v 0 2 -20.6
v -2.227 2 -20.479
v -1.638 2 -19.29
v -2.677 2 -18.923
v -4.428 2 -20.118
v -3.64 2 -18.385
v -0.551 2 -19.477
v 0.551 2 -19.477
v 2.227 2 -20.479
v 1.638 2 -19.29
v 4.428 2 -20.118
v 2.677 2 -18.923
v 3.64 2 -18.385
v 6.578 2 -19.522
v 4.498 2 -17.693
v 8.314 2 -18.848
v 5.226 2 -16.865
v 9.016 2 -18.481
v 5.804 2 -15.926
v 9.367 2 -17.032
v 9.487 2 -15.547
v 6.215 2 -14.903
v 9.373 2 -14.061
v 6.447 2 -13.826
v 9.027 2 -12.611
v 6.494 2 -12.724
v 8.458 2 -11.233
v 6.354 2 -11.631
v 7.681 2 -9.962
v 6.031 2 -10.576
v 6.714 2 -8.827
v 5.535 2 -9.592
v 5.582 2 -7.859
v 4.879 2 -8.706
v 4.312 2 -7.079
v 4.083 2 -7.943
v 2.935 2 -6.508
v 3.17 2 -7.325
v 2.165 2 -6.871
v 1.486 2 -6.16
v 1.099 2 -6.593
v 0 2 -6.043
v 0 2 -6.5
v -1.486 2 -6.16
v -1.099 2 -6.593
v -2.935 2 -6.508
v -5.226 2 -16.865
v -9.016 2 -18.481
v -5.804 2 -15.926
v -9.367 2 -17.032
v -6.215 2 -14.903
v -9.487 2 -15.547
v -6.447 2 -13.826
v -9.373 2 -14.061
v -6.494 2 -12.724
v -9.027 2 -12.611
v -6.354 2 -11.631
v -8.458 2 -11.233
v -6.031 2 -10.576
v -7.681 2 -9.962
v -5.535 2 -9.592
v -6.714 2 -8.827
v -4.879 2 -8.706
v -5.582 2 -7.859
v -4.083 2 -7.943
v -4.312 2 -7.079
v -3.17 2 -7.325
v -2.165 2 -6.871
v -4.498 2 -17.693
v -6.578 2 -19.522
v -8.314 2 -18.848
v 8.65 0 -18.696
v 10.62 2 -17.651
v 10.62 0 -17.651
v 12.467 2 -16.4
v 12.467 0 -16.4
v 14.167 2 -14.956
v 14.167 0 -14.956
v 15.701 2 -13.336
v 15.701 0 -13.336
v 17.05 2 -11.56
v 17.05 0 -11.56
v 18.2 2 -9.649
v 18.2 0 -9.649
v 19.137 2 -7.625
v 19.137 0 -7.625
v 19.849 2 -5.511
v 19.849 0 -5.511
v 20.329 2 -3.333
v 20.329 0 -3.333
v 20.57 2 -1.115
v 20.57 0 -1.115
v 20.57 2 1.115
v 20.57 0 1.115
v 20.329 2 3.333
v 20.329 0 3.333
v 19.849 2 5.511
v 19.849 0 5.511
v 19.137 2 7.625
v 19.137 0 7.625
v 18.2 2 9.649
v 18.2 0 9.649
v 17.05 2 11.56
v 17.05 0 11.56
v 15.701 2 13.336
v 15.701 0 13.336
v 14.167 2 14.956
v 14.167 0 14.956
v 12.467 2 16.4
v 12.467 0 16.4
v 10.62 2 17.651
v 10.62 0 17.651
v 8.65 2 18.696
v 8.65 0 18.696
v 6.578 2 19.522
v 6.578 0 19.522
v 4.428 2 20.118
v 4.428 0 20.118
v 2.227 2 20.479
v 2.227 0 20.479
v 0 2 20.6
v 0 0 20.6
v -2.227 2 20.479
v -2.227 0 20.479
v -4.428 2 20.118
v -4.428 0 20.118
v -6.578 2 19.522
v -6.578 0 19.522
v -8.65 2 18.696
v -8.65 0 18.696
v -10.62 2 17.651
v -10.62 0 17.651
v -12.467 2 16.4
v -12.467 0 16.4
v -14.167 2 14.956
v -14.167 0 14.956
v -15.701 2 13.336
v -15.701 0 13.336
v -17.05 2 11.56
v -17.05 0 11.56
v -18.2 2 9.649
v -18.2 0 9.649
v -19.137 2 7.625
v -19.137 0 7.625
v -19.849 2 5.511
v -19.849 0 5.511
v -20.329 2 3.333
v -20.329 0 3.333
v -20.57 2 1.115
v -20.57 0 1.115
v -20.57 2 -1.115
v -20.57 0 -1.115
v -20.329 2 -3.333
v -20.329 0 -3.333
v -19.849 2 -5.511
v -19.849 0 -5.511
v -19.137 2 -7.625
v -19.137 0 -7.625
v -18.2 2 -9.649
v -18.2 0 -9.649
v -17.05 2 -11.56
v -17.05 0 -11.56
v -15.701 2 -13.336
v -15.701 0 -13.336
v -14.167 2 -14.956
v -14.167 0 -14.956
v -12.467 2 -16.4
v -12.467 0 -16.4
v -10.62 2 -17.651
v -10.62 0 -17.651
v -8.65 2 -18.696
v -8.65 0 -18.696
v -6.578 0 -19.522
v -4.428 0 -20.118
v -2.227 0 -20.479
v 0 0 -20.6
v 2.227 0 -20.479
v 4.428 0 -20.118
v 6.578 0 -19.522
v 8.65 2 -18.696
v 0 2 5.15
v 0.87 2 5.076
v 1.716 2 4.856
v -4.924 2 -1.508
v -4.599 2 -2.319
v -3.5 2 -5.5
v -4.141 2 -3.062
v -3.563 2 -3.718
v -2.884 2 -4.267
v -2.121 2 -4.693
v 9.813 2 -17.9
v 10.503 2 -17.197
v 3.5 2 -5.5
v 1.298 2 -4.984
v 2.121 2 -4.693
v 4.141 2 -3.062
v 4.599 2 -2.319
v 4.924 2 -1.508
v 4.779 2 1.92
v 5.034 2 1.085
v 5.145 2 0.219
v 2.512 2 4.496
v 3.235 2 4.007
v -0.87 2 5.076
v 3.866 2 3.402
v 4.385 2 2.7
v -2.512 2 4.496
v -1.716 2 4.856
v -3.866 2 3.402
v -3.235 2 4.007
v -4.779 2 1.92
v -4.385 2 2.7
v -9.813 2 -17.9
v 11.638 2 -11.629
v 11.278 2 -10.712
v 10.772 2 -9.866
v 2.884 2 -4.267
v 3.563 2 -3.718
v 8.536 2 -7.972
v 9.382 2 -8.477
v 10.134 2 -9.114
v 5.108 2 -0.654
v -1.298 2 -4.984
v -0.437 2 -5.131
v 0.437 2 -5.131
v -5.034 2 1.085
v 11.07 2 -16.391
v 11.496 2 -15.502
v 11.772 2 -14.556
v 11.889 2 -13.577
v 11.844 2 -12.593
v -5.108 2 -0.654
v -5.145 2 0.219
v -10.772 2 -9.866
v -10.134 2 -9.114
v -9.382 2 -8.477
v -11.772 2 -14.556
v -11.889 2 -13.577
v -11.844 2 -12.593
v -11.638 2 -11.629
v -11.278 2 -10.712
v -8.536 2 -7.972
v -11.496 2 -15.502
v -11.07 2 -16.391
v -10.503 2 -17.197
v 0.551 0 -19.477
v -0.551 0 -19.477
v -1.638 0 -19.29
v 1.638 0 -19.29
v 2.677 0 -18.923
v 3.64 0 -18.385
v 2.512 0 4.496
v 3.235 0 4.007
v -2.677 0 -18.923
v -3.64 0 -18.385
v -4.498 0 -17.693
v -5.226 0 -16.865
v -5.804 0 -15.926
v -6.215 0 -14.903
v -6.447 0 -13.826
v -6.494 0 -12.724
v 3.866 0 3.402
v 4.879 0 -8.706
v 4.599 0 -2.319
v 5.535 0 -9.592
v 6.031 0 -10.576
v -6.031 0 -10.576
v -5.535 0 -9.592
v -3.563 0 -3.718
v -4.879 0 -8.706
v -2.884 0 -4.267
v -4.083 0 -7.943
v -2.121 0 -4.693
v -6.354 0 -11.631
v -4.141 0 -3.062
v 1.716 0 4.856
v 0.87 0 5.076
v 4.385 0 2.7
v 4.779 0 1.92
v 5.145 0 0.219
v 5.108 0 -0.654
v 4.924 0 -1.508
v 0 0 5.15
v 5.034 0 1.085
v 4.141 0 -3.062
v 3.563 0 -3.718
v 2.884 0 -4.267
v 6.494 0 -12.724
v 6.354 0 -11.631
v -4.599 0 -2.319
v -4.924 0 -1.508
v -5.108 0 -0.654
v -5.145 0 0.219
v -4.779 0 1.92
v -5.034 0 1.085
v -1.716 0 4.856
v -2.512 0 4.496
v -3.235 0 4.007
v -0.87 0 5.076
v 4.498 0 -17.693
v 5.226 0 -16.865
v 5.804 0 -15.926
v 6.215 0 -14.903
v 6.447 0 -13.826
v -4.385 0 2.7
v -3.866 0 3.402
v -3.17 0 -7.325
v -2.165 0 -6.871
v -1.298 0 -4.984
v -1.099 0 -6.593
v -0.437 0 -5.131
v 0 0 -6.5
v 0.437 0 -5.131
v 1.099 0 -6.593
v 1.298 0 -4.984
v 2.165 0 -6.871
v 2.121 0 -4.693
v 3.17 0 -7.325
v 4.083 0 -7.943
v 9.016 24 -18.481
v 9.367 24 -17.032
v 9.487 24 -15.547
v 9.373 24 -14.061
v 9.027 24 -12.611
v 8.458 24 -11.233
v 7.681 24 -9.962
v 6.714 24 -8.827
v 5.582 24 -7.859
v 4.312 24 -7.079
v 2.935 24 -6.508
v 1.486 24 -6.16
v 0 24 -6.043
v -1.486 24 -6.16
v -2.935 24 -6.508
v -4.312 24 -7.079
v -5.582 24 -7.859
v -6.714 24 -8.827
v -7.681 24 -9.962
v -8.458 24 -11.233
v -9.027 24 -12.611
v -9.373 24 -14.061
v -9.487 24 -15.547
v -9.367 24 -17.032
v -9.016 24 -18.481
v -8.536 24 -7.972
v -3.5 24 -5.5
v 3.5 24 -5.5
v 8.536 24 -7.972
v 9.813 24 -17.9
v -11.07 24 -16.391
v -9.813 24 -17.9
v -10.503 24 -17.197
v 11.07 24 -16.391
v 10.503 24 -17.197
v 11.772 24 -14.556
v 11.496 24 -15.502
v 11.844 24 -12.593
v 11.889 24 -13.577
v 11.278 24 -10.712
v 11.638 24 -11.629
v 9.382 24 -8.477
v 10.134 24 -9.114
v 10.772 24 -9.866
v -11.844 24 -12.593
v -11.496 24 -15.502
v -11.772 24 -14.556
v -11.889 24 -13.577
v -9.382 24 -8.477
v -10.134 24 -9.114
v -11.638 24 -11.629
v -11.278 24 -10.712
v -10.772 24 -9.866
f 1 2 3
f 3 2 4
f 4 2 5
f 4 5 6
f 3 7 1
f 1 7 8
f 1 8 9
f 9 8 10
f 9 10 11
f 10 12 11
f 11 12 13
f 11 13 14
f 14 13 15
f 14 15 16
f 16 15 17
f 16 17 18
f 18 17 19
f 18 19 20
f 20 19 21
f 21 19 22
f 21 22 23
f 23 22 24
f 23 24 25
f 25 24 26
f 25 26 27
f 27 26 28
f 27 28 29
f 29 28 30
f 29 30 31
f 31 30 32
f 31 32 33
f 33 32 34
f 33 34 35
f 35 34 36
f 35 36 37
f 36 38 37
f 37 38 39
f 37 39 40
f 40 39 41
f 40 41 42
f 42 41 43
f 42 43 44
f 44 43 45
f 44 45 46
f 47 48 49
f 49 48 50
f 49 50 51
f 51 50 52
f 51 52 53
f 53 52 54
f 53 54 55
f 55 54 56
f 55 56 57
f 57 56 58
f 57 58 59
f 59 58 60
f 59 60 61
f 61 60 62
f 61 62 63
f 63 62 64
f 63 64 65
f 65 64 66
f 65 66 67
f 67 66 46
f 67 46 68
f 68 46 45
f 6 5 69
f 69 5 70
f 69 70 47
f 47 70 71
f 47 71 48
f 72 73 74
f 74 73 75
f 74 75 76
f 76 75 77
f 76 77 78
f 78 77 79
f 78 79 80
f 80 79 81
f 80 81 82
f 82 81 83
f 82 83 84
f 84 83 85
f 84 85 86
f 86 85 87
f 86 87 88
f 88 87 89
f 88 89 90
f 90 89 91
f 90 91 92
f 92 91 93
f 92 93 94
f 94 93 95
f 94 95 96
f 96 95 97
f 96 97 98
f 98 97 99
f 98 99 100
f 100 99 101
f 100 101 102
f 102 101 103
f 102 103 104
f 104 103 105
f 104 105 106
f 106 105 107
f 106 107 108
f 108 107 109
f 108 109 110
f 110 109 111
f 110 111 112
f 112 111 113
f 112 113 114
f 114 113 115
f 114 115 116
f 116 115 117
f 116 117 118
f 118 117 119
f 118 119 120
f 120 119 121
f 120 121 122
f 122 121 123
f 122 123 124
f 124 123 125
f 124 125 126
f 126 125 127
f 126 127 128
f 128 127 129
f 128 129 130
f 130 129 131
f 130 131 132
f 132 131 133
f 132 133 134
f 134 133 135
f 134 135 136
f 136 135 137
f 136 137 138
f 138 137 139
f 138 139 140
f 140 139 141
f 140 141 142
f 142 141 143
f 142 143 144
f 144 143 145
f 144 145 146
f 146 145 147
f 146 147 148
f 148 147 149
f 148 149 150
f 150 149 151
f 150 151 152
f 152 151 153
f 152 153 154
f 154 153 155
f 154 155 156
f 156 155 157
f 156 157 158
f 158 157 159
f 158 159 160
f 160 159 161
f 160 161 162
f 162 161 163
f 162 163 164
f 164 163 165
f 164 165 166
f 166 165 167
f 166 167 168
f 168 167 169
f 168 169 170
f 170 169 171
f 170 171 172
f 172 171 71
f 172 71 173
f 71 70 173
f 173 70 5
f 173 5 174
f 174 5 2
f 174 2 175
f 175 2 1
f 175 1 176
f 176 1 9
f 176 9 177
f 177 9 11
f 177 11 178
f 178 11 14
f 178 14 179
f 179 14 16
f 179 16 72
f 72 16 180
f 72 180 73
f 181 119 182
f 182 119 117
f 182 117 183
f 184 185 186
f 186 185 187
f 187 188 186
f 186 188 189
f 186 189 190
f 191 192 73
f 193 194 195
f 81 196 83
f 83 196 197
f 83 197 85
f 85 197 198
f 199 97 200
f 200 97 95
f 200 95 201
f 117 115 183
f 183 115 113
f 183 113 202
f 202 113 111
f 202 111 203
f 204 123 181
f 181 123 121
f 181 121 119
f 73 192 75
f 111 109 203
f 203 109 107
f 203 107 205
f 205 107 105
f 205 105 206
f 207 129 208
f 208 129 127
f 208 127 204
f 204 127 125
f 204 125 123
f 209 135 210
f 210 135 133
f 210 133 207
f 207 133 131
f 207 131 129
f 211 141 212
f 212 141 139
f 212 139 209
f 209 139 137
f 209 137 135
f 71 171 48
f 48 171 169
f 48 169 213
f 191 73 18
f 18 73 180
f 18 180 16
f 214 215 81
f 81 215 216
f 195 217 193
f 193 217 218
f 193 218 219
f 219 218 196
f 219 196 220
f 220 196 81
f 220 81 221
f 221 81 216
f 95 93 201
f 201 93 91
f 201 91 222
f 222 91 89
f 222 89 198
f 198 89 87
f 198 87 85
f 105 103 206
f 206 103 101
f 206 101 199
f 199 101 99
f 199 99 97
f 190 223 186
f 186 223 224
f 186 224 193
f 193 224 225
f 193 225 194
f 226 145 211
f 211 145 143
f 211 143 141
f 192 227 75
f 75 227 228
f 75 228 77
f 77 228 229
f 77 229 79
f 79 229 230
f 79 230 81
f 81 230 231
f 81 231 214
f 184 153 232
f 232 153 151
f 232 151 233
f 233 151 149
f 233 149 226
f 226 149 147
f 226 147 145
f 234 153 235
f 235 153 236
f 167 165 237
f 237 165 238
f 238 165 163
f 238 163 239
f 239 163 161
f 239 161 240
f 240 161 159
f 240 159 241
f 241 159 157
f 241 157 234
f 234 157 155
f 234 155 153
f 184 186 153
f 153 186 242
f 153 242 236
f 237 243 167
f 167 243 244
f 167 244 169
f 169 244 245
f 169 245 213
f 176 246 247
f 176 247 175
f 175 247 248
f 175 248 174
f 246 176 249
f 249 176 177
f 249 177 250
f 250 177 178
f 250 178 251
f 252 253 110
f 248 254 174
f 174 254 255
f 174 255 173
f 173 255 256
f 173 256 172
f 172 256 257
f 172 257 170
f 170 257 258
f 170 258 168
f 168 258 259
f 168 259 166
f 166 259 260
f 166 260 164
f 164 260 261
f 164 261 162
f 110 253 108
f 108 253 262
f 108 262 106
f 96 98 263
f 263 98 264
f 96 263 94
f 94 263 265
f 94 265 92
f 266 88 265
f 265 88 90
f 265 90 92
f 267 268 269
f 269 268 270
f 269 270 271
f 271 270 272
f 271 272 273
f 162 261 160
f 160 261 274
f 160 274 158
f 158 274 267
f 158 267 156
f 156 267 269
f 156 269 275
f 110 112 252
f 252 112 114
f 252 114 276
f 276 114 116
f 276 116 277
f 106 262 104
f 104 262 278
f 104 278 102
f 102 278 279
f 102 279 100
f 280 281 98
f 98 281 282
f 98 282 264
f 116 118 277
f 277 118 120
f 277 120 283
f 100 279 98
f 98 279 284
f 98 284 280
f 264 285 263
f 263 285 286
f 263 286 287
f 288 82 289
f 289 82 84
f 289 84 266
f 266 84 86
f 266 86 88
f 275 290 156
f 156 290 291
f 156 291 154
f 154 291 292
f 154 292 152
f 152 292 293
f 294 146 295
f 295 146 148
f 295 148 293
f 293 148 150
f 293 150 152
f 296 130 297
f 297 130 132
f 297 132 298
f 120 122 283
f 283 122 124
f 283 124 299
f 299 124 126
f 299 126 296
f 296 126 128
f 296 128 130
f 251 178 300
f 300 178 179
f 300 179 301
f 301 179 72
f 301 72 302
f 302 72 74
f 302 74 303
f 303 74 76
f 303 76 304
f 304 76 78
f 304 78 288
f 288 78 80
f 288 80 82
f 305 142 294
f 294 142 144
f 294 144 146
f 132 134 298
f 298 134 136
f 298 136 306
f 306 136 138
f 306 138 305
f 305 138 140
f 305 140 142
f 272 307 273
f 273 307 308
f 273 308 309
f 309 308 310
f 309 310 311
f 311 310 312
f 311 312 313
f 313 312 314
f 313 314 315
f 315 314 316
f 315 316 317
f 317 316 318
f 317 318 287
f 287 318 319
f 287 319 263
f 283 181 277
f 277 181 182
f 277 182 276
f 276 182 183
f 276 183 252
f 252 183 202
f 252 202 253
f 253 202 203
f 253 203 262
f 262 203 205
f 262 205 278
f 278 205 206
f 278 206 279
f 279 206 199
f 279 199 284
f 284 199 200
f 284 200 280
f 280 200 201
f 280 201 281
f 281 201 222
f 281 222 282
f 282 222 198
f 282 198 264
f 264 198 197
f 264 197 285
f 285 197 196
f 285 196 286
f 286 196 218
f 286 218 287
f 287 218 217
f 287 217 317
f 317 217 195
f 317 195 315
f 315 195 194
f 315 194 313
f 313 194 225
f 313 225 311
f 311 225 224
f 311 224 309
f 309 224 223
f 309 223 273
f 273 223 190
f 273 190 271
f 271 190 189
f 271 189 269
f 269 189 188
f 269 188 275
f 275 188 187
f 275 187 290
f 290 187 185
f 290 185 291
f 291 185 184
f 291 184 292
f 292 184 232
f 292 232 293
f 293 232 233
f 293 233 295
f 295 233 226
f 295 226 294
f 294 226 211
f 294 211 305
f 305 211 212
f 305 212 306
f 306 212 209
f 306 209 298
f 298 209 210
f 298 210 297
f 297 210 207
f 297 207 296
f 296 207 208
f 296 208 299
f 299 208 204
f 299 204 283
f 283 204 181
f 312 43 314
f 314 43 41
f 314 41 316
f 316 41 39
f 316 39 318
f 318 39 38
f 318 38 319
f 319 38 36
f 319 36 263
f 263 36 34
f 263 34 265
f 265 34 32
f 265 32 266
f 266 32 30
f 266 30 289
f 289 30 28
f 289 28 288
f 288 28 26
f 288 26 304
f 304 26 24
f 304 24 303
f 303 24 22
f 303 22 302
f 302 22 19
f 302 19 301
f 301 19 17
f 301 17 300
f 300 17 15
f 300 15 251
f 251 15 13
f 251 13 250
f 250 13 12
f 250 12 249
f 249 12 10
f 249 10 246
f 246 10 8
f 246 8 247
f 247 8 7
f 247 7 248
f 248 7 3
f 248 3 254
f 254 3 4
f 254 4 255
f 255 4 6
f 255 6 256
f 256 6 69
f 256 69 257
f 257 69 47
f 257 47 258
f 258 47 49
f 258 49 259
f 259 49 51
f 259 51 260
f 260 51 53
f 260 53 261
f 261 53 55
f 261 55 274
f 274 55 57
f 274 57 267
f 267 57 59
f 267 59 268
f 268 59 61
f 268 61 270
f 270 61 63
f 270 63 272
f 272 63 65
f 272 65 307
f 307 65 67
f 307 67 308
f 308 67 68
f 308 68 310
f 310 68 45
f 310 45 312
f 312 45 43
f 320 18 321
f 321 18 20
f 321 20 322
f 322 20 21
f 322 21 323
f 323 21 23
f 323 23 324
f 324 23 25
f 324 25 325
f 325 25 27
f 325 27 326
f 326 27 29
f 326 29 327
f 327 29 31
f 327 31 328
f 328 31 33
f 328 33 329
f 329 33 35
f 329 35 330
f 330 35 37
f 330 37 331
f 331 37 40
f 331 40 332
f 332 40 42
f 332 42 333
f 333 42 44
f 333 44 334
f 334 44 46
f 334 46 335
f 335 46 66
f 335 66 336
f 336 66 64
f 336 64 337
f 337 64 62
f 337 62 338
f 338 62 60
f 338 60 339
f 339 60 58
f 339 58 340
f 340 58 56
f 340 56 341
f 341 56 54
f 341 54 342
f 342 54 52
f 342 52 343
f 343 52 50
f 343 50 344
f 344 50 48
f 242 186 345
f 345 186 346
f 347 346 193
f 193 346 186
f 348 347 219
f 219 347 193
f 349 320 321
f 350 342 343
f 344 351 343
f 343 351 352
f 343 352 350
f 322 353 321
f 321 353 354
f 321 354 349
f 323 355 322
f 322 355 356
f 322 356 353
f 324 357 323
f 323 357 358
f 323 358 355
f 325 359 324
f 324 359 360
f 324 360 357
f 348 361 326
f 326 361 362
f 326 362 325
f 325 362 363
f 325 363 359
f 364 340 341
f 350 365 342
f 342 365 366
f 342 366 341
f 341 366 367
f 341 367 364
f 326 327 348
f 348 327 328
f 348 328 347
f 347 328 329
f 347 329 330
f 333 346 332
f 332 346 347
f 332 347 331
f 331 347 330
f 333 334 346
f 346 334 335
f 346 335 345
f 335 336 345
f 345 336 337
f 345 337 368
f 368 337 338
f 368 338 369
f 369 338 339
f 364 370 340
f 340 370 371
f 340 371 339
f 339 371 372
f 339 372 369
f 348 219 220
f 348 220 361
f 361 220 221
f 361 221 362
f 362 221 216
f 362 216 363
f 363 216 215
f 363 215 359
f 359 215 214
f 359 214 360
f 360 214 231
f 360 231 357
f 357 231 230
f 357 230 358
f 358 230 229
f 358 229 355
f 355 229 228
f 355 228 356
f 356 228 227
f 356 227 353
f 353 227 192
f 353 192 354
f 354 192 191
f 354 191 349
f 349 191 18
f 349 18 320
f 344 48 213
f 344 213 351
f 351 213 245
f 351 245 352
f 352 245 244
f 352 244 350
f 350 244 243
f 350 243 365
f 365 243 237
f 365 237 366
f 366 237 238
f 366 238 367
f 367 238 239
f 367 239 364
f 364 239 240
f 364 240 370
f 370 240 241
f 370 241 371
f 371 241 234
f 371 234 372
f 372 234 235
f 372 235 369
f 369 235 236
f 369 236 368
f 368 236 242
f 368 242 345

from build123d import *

# Parameters (mm, degrees)
SKETCH1_R           = 20.6
BOSS_EXTRUDE1_DEPTH = 2
SKETCH2_R           = 5.15
CUT_EXTRUDE1_DEPTH  = 3
SKETCH3_R           = 6.5
CUT_EXTRUDE2_DEPTH  = 2
BOSS_EXTRUDE4_DEPTH = 22
FILLET2_R           = 6


with BuildPart() as part:
    # Sketch1 → Boss-Extrude1 (new body)
    with BuildSketch(Plane(origin=(0, 0, 0), x_dir=(1, 0, 0), z_dir=(0, 1, 0))):
        with Locations(Location((0, 0, 0), (0, 0, 270))):
            Circle(SKETCH1_R)
    extrude(amount=BOSS_EXTRUDE1_DEPTH)

    # Sketch2 → Cut-Extrude1 (cut)
    with BuildSketch(Plane(origin=(0, 2, 0), x_dir=(1, 0, 0), z_dir=(0, 1, 0))):
        with Locations(Location((0, 0, 0), (0, 0, 270))):
            Circle(SKETCH2_R)
    extrude(amount=-CUT_EXTRUDE1_DEPTH, mode=Mode.SUBTRACT)

    # Sketch3 → Cut-Extrude2 (cut)
    with BuildSketch(Plane(origin=(0, 2, 0), x_dir=(1, 0, 0), z_dir=(0, 1, 0))):
        with Locations(Location((0, 13, 0), (0, 0, 270))):
            Circle(SKETCH3_R)
    extrude(amount=-CUT_EXTRUDE2_DEPTH, mode=Mode.SUBTRACT)

    # Sketch4 → Boss-Extrude4 (add)
    with BuildSketch(Plane(origin=(0, 2, 0), x_dir=(1, 0, 0), z_dir=(0, 1, 0))):
        with BuildLine():
            Line((-16.743954133, 12), (-3.5, 5.5))
            Line((-3.5, 5.5), (3.5, 5.5))
            Line((3.5, 5.5), (16.743954133, 12))
            ThreePointArc((16.743954133, 12), (13.279606143, 15.748398671), (9, 18.529975715))
            ThreePointArc((9, 18.529975715), (0, 6.042759079), (-9, 18.529975715))
            ThreePointArc((-9, 18.529975715), (-13.279606143, 15.748398671), (-16.743954133, 12))
        make_face()
    extrude(amount=BOSS_EXTRUDE4_DEPTH)

    # Fillet2
    # the kernel refuses this fillet: 6 mm, written as the material it takes off along each edge
    with BuildSketch(Plane(origin=(16.743954133, 2, -12), x_dir=(-0.7761796310564387, 0, -0.6305118399626535), z_dir=(0, 1, 0))) as fillet2_piece_1:
        with BuildLine():
            CenterArc((9.278744028, 5.78779133), FILLET2_R, 155.229237023, 130.054584679)
            Line((3.830795632, 8.301724161), (0, 0))
            ThreePointArc((0, 0), (5.430174062, -0.728583099), (10.860348123, 0))
        make_face()
    extrude(amount=49.150870308, mode=Mode.SUBTRACT)
    with BuildSketch(Plane(origin=(-16.743954133, 2, -12), x_dir=(0.7761796310564387, 0, -0.6305118399626534), z_dir=(0, 1, 0))) as fillet2_piece_2:
        with BuildLine():
            CenterArc((9.278744028, -5.78779133), FILLET2_R, 74.716178298, 130.054584679)
            Line((3.830795632, -8.301724161), (0, 0))
            ThreePointArc((0, 0), (5.430174062, 0.728583099), (10.860348123, 0))
        make_face()
    extrude(amount=49.150870308, mode=Mode.SUBTRACT)


solid = part.part
